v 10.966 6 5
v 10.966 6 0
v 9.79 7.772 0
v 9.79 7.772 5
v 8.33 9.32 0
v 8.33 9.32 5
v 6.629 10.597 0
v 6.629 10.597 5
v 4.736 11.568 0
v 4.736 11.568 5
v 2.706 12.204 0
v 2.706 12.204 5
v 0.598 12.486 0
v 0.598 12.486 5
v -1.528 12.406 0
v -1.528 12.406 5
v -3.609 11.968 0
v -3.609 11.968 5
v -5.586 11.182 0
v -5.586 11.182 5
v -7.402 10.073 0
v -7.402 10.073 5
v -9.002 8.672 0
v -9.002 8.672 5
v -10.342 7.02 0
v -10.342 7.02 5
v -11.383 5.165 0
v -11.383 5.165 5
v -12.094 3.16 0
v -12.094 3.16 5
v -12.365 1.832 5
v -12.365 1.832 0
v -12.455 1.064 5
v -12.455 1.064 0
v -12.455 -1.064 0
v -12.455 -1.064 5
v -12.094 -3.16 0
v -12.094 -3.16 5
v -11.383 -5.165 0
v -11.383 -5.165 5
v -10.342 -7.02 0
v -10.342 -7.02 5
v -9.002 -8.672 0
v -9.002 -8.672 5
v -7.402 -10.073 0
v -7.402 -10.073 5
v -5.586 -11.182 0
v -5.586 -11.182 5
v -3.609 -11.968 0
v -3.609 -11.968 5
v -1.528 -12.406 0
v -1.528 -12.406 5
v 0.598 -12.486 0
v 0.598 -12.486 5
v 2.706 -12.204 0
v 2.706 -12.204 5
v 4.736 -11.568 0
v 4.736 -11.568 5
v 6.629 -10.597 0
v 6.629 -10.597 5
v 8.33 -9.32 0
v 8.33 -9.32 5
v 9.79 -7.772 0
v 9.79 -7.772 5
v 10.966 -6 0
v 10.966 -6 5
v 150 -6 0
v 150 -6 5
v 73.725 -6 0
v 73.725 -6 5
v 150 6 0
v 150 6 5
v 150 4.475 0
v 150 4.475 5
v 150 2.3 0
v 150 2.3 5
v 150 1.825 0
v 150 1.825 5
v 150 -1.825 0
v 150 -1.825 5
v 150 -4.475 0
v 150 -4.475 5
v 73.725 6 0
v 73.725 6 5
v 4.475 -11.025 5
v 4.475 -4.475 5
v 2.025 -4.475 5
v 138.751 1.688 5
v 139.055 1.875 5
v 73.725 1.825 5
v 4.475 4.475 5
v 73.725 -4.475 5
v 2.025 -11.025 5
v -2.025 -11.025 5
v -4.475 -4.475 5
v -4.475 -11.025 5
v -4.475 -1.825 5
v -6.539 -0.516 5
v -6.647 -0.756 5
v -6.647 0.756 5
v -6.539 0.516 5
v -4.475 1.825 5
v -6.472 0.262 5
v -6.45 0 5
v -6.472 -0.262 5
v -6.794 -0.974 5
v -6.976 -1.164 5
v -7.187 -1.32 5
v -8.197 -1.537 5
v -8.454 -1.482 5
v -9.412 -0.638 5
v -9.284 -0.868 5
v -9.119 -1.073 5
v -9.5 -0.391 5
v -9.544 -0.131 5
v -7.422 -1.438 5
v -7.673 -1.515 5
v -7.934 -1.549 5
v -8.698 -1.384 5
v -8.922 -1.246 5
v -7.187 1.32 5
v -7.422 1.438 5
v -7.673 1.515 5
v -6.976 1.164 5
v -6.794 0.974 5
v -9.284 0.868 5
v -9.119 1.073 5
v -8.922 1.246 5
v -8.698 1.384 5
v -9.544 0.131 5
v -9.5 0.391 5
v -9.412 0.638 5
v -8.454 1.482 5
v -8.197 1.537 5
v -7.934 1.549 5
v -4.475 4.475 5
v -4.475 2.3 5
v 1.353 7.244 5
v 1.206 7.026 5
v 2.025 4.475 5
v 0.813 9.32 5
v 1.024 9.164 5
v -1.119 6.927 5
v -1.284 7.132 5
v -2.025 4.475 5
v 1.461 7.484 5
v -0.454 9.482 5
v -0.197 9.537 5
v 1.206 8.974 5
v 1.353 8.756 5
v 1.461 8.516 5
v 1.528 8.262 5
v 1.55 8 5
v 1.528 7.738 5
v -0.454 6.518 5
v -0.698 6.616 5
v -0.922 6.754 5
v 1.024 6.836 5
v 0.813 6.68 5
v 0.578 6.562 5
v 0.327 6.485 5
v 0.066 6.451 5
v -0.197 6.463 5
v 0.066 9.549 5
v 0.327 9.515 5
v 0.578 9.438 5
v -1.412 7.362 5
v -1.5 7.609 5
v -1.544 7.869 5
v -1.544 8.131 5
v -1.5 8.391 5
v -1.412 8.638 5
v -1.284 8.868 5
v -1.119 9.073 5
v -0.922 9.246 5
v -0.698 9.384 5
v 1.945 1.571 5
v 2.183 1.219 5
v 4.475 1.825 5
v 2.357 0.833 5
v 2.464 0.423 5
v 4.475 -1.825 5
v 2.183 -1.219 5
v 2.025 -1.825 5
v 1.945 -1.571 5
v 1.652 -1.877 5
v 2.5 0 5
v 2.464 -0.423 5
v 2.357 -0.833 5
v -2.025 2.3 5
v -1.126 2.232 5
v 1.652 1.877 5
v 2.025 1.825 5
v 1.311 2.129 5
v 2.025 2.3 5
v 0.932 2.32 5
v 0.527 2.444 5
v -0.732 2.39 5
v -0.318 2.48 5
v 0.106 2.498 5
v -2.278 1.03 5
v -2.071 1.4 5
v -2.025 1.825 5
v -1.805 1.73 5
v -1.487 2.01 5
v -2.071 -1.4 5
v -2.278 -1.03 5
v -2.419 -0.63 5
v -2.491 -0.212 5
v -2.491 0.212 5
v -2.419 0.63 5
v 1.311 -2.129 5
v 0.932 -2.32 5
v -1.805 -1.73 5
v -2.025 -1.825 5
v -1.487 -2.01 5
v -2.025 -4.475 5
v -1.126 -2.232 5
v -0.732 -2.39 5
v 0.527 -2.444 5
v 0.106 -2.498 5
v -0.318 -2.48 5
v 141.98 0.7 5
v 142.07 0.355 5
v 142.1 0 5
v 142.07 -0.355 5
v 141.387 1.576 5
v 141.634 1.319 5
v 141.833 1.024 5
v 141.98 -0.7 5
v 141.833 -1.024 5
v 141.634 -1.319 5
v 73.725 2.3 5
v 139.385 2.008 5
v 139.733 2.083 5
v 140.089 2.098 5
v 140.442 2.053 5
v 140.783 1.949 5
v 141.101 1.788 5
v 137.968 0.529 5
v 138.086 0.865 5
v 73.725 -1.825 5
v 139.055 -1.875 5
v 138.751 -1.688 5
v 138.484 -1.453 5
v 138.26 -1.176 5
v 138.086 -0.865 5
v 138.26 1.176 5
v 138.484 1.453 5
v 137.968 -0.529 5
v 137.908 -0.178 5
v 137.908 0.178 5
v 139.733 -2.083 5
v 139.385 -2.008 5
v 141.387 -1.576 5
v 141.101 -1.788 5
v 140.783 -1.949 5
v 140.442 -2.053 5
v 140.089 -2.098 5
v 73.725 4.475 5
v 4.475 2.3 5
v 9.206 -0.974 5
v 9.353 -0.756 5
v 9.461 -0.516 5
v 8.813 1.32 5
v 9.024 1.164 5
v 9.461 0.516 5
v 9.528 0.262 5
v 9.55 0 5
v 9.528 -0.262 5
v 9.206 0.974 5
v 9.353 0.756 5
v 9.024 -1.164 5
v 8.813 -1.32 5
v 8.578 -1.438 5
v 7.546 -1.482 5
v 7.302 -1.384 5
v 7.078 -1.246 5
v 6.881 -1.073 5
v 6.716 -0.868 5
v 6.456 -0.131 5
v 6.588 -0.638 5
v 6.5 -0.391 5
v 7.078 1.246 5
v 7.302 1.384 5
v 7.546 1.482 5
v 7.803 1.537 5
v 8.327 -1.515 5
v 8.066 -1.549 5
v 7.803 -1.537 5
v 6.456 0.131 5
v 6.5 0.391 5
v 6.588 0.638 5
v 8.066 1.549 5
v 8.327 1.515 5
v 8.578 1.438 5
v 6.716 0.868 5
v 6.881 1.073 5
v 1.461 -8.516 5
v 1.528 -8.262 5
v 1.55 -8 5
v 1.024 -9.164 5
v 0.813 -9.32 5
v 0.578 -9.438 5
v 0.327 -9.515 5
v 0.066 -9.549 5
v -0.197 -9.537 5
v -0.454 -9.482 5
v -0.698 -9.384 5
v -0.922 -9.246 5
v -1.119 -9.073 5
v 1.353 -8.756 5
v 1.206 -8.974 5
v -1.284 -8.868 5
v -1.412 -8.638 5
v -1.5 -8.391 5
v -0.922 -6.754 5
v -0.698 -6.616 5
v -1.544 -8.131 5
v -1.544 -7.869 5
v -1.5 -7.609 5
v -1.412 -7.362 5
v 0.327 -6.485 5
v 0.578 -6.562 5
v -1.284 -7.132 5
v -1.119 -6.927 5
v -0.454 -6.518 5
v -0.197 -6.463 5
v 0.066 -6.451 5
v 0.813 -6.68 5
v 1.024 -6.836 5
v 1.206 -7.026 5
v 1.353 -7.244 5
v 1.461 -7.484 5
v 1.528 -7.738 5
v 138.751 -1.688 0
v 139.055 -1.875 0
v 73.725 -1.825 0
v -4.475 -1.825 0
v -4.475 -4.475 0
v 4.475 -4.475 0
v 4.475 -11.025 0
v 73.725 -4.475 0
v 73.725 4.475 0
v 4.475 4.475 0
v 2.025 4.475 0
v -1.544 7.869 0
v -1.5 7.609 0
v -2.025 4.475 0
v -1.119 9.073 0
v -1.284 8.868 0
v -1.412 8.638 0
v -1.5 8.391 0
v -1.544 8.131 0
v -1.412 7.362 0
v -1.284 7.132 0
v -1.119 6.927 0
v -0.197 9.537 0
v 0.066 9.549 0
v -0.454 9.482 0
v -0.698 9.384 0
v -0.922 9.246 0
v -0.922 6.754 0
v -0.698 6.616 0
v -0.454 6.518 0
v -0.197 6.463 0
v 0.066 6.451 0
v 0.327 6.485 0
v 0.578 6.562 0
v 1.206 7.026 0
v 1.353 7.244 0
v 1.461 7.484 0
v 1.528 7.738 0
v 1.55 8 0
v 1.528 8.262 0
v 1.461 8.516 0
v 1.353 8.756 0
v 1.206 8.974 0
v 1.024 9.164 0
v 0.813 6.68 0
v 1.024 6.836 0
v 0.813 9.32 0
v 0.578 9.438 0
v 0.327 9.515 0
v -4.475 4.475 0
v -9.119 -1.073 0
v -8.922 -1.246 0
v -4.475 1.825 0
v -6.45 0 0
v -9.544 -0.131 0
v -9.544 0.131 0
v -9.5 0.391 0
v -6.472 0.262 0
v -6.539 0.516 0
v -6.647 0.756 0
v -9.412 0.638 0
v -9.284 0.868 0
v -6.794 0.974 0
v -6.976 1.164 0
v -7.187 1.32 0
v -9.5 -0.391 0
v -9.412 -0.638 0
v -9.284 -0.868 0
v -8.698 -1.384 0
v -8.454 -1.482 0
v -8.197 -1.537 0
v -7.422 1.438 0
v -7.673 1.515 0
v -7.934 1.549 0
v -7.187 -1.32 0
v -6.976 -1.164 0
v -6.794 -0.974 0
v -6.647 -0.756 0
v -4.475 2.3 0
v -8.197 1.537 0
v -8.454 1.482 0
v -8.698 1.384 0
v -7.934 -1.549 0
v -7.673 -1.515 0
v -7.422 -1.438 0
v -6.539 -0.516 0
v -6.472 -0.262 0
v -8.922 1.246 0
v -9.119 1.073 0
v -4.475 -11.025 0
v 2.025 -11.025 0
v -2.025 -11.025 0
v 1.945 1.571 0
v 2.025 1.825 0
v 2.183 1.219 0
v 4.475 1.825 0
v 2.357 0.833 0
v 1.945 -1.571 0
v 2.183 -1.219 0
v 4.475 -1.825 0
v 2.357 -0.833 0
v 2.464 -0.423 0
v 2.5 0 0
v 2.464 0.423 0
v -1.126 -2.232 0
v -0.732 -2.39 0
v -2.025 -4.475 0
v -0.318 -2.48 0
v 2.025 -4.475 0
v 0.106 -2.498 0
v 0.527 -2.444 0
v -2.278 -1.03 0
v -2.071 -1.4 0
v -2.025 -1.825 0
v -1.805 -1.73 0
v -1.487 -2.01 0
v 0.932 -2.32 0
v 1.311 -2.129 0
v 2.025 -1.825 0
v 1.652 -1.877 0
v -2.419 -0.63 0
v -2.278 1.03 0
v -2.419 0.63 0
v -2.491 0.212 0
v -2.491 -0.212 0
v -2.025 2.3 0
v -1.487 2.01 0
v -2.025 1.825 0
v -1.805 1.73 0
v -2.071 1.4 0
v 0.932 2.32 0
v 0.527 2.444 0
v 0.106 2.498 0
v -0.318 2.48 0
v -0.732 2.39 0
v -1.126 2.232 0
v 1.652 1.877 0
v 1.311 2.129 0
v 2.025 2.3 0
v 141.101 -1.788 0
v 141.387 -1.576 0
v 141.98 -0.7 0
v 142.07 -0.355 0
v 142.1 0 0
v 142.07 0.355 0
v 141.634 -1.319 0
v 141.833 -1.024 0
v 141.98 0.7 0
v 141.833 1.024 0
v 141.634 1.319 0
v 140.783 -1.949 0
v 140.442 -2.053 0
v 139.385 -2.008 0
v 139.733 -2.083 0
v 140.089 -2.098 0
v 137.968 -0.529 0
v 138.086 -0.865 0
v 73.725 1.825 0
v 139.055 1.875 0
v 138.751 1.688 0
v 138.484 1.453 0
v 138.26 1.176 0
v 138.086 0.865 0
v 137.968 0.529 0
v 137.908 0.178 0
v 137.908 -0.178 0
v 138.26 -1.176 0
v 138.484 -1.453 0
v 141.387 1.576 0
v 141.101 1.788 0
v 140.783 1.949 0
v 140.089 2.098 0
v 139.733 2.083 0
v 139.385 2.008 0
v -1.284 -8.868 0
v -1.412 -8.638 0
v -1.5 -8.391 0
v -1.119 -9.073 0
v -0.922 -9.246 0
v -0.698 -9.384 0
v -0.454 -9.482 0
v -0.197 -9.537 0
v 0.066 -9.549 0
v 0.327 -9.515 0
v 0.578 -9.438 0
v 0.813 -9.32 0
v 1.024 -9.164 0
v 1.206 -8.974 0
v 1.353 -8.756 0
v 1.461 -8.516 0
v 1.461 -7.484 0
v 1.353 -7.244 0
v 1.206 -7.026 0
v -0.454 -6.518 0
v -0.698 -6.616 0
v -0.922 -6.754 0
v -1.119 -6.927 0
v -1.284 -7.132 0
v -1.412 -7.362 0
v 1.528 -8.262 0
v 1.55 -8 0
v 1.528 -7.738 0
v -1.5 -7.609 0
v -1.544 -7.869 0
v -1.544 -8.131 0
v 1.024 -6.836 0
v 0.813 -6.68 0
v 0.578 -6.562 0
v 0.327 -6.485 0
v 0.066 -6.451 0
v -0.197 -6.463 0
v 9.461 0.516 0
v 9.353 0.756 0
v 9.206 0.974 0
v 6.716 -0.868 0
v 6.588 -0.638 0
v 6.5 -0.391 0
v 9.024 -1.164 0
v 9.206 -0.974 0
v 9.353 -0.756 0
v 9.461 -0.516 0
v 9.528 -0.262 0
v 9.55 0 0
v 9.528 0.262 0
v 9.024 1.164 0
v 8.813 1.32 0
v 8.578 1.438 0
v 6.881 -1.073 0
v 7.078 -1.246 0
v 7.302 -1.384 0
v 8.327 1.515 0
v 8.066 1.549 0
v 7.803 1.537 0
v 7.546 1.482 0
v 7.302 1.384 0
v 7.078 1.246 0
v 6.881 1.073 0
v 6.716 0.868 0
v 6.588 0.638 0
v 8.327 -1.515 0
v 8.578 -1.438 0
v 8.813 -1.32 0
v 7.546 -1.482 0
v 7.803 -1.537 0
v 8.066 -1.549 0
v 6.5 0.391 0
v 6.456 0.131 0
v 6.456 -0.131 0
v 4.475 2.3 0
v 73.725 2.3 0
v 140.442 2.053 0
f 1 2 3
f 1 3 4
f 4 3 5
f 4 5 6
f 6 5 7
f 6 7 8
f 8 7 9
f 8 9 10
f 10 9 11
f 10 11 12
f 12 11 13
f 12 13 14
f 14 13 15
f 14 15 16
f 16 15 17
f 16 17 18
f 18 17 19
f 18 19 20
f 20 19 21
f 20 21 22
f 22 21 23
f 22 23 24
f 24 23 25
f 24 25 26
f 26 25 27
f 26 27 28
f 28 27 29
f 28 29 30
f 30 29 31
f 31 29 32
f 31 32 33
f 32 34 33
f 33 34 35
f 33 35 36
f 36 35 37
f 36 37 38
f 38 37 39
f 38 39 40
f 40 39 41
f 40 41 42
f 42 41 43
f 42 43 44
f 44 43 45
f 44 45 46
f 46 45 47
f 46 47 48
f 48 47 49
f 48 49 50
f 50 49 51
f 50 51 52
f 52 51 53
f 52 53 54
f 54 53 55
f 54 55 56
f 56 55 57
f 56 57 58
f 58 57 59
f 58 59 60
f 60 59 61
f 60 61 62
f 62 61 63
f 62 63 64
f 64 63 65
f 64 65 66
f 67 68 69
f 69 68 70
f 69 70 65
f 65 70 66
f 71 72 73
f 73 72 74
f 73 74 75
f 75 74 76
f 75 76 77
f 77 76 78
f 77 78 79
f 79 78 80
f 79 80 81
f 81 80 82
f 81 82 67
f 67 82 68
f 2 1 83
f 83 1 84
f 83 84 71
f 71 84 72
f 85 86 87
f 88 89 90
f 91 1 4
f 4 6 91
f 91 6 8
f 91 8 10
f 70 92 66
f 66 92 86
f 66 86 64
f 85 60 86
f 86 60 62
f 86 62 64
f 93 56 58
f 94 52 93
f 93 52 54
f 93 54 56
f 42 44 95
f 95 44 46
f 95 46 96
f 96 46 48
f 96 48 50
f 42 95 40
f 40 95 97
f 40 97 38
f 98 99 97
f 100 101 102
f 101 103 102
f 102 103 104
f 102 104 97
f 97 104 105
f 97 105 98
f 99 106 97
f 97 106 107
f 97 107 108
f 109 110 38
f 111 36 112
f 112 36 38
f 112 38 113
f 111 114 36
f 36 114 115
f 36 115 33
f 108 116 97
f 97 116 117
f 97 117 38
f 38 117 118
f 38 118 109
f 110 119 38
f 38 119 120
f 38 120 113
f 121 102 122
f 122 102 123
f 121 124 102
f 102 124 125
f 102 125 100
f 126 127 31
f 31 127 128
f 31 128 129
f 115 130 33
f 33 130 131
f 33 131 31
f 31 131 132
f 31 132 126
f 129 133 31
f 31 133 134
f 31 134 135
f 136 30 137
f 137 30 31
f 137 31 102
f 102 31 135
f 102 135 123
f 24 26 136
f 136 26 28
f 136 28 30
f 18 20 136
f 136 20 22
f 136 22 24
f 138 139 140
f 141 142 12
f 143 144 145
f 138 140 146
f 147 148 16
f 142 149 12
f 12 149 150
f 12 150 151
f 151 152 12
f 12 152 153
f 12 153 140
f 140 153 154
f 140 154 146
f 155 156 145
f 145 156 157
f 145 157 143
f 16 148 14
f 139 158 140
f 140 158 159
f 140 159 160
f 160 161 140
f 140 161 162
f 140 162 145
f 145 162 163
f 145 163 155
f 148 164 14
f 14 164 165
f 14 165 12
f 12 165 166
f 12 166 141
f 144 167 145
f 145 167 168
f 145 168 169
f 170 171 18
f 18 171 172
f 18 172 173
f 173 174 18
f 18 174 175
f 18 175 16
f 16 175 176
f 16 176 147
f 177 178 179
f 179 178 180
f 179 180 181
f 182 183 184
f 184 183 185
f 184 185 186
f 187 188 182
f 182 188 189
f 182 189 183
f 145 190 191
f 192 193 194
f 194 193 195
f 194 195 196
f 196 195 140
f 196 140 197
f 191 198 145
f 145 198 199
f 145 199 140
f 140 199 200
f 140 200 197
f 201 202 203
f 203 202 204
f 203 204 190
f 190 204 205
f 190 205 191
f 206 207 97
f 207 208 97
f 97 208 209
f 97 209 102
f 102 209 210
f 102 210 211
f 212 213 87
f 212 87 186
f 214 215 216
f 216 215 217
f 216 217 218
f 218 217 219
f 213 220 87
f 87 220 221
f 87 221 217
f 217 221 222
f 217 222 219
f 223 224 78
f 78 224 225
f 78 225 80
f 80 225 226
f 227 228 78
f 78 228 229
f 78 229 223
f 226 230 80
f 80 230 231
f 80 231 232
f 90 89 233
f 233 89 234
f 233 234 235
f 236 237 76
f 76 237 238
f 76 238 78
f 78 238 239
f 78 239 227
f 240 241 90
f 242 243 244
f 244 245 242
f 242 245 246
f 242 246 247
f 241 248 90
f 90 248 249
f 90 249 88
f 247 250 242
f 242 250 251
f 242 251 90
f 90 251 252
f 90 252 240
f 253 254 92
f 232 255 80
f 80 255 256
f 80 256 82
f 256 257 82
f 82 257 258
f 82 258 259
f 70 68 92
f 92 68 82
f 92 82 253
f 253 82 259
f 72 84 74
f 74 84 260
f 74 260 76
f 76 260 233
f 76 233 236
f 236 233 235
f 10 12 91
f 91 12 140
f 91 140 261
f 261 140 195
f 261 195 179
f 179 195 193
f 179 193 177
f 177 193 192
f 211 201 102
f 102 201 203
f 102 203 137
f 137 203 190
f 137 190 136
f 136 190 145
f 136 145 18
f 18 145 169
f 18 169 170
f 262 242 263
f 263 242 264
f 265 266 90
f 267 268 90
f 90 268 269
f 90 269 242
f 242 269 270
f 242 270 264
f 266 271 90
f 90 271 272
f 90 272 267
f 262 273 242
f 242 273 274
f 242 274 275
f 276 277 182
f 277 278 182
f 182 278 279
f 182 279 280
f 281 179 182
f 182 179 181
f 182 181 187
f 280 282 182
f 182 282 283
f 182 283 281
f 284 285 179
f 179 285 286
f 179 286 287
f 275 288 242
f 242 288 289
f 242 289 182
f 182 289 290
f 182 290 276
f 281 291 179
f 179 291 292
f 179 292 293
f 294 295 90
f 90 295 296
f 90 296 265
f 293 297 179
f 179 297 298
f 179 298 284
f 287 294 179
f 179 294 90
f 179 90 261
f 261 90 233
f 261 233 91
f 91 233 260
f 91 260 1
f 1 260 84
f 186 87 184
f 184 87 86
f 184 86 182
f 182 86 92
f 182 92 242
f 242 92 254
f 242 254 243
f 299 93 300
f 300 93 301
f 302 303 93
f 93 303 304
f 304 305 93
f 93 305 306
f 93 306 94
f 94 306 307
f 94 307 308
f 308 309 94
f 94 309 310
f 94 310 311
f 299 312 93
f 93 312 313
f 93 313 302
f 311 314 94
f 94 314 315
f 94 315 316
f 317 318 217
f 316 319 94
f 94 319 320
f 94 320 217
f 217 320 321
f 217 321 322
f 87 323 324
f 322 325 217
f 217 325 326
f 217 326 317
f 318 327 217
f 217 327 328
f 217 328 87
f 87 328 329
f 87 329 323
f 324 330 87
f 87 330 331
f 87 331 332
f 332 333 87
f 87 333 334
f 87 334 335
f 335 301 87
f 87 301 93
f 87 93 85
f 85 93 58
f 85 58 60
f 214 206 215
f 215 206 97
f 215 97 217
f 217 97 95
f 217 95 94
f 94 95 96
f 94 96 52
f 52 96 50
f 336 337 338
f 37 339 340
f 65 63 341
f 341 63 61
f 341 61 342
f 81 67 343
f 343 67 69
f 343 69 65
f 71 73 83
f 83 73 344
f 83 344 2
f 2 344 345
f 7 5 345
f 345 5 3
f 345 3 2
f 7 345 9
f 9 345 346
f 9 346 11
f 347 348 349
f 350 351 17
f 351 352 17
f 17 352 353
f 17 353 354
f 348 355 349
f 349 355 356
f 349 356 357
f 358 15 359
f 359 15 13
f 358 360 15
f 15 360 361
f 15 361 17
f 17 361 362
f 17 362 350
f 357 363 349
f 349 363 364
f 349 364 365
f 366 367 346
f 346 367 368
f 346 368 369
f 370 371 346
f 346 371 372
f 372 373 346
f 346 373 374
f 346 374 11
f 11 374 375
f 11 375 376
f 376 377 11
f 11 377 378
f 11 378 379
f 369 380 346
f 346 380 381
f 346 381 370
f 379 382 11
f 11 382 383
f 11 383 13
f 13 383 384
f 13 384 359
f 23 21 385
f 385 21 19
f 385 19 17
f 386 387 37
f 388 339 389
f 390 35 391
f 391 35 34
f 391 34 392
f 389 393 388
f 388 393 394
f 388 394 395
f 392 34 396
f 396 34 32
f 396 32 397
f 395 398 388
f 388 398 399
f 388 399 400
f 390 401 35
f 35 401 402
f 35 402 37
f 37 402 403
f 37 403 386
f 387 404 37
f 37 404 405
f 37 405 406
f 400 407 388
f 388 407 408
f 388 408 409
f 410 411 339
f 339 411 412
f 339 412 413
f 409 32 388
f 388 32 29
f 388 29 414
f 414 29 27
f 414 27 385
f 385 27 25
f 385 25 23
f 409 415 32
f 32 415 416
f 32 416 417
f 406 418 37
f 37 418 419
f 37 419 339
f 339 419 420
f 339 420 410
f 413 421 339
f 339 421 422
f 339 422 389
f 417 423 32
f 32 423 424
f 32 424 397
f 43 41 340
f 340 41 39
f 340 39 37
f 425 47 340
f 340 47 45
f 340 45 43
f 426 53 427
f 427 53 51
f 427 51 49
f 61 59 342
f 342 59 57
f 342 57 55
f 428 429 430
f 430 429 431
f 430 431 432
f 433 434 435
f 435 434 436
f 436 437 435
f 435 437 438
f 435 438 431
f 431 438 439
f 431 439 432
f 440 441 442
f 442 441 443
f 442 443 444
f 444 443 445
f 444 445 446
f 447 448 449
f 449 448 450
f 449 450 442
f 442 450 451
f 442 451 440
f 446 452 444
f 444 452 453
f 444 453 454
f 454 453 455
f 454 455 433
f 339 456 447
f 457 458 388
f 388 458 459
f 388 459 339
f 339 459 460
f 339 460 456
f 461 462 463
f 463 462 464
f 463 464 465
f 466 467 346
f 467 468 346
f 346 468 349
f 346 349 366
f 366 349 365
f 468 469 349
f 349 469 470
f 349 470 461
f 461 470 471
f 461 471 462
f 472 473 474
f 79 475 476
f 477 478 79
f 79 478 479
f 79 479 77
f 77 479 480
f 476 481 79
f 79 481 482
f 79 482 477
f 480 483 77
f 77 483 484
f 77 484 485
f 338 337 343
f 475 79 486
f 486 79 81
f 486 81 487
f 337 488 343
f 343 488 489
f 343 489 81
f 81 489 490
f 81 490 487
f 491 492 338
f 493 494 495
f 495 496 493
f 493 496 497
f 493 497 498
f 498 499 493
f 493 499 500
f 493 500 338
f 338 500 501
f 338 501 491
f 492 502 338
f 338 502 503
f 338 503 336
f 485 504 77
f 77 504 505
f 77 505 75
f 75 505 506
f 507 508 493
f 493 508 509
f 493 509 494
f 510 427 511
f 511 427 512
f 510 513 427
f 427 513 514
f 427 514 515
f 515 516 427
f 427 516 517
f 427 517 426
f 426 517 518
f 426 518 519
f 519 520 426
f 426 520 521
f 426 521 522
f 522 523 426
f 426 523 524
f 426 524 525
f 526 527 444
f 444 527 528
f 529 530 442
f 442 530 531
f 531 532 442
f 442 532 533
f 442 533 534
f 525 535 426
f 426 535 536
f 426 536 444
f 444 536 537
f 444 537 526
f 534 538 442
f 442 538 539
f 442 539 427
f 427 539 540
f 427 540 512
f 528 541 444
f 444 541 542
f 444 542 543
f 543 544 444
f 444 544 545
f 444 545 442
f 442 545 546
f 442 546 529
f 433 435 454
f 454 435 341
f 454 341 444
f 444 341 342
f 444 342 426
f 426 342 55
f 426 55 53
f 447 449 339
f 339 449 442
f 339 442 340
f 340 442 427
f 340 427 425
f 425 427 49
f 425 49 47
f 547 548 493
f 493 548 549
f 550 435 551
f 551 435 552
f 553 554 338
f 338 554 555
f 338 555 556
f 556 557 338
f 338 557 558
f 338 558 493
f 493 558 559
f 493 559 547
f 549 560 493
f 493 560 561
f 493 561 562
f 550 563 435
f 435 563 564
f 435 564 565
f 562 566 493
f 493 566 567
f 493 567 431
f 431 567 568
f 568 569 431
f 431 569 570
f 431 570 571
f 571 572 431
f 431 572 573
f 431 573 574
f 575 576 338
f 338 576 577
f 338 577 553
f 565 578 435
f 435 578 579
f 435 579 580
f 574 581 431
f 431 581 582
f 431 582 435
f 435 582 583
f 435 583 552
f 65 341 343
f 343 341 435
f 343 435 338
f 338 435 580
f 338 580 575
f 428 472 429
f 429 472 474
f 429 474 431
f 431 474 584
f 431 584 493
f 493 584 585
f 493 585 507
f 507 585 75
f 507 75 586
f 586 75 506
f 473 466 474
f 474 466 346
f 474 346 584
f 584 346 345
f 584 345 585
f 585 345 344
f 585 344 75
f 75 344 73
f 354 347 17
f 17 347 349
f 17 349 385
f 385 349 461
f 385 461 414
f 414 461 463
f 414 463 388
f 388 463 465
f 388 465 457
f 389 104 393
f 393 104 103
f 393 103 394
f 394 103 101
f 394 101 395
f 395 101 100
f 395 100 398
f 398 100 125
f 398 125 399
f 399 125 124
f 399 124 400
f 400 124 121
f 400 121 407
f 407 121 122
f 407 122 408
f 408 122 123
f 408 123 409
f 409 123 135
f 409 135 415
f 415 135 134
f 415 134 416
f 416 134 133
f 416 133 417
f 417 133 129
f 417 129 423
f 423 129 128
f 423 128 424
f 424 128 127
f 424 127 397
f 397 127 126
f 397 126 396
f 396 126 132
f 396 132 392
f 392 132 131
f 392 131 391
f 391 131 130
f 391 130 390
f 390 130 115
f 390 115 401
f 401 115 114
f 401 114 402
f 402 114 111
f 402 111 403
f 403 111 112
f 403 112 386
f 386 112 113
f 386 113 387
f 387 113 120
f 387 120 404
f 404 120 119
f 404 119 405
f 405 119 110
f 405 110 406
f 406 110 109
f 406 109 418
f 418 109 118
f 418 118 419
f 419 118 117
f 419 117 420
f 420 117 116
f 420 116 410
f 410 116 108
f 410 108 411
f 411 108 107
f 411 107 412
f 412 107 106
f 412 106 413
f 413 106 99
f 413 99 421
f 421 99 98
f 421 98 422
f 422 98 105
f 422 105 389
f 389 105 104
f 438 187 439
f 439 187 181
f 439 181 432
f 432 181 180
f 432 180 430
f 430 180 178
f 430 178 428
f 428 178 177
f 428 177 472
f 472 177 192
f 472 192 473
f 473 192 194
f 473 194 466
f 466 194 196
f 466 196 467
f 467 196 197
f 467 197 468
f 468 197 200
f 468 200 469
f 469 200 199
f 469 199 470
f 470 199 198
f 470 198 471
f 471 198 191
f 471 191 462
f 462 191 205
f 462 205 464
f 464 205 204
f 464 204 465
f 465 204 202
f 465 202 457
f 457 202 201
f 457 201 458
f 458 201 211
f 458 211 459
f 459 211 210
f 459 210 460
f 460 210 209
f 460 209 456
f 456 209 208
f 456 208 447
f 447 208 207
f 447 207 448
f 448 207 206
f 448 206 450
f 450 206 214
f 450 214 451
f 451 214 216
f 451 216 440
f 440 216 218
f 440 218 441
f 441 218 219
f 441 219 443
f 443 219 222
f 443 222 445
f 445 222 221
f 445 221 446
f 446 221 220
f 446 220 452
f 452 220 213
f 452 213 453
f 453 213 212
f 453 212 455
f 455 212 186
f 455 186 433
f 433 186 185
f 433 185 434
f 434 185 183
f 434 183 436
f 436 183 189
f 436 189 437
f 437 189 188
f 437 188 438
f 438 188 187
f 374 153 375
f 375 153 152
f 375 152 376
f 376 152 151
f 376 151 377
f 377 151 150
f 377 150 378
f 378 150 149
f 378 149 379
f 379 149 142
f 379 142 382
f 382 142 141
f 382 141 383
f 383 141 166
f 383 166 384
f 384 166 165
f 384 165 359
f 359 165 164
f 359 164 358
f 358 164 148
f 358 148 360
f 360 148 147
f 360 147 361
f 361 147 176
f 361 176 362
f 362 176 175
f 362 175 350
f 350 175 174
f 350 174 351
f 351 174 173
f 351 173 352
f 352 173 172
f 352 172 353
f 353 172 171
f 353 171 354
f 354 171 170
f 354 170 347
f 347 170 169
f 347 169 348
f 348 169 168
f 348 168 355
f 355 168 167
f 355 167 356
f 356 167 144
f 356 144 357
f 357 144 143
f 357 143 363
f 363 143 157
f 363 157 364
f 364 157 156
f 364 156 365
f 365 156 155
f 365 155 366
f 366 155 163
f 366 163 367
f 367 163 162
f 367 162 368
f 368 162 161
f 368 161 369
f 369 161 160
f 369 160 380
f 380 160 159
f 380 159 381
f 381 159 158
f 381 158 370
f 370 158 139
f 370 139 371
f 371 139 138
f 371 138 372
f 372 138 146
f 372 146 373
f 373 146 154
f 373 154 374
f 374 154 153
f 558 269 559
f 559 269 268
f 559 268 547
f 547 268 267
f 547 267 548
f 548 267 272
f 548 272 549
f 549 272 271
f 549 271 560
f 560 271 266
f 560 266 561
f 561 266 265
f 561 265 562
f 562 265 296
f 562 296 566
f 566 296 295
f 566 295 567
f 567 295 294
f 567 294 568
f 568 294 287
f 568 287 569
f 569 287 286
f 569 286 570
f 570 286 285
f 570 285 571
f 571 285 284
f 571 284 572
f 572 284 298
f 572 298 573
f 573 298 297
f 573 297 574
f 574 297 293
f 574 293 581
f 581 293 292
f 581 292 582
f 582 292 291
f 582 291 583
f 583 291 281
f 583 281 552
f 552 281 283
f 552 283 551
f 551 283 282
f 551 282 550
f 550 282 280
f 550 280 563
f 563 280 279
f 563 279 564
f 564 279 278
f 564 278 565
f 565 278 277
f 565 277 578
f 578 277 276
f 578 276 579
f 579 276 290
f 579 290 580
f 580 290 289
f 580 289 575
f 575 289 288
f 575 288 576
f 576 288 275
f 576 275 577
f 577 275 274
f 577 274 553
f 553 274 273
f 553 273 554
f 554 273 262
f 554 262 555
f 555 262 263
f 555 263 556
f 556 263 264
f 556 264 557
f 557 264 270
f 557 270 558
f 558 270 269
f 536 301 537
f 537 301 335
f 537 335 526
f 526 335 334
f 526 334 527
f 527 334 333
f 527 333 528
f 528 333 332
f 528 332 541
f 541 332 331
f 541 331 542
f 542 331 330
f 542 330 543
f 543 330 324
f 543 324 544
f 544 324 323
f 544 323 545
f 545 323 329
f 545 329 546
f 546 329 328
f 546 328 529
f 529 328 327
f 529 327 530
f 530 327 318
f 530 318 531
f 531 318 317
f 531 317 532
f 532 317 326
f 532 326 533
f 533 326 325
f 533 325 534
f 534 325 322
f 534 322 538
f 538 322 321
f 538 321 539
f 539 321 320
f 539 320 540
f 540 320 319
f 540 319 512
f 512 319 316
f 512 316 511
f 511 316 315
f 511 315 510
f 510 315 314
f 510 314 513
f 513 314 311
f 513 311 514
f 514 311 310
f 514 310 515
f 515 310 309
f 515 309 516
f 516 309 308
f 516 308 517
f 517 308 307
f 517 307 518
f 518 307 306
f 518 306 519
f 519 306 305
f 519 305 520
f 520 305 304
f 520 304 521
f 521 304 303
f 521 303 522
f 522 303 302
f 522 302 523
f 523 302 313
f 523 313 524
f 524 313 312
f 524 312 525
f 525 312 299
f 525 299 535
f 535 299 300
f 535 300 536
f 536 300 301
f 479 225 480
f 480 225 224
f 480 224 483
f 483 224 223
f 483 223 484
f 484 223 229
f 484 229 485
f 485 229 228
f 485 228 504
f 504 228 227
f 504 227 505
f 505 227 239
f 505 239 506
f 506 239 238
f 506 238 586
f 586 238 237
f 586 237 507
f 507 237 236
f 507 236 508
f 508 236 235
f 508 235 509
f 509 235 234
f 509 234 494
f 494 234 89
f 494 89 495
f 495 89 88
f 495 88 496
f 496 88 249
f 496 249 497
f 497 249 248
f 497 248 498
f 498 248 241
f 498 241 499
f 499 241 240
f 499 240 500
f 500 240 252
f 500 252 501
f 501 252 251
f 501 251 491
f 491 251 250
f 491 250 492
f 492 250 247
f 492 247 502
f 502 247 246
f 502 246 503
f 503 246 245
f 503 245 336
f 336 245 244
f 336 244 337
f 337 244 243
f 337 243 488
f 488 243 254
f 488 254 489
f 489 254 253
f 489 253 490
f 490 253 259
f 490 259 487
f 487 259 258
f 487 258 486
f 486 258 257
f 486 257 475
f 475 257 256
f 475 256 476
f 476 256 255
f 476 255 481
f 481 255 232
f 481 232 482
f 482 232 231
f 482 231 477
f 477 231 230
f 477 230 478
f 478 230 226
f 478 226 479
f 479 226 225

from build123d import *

# Parameters (mm, degrees)
BOSS_EXTRUDE1_DEPTH = 5
SKETCH2_R           = 2.1
SKETCH2_R_2         = 2.5
SKETCH2_R_3         = 1.55
CUT_EXTRUDE1_DEPTH  = 151.602954818


with BuildPart() as part:
    # Sketch1 → Boss-Extrude1 (new body)
    with BuildSketch(Plane.XY):
        with BuildLine():
            Line((10.9658561, 6), (150, 6))
            Line((150, 6), (150, -6))
            Line((150, -6), (10.9658561, -6))
            ThreePointArc((10.9658561, -6), (-12.5, 0), (10.9658561, 6))
        make_face()
    extrude(amount=BOSS_EXTRUDE1_DEPTH)

    # Sketch2 → Cut-Extrude1 (cut, through all)
    with BuildSketch(Plane.XY.offset(5)):
        with Locations((140, 0)):
            Circle(SKETCH2_R)
        Circle(SKETCH2_R_2)
        with Locations((0, 8)):
            Circle(SKETCH2_R_3)
        with Locations((8, 0)):
            Circle(SKETCH2_R_3)
        with Locations((0, -8)):
            Circle(SKETCH2_R_3)
        with Locations((-8, 0)):
            Circle(SKETCH2_R_3)
    extrude(amount=-CUT_EXTRUDE1_DEPTH, mode=Mode.SUBTRACT)


solid = part.part
